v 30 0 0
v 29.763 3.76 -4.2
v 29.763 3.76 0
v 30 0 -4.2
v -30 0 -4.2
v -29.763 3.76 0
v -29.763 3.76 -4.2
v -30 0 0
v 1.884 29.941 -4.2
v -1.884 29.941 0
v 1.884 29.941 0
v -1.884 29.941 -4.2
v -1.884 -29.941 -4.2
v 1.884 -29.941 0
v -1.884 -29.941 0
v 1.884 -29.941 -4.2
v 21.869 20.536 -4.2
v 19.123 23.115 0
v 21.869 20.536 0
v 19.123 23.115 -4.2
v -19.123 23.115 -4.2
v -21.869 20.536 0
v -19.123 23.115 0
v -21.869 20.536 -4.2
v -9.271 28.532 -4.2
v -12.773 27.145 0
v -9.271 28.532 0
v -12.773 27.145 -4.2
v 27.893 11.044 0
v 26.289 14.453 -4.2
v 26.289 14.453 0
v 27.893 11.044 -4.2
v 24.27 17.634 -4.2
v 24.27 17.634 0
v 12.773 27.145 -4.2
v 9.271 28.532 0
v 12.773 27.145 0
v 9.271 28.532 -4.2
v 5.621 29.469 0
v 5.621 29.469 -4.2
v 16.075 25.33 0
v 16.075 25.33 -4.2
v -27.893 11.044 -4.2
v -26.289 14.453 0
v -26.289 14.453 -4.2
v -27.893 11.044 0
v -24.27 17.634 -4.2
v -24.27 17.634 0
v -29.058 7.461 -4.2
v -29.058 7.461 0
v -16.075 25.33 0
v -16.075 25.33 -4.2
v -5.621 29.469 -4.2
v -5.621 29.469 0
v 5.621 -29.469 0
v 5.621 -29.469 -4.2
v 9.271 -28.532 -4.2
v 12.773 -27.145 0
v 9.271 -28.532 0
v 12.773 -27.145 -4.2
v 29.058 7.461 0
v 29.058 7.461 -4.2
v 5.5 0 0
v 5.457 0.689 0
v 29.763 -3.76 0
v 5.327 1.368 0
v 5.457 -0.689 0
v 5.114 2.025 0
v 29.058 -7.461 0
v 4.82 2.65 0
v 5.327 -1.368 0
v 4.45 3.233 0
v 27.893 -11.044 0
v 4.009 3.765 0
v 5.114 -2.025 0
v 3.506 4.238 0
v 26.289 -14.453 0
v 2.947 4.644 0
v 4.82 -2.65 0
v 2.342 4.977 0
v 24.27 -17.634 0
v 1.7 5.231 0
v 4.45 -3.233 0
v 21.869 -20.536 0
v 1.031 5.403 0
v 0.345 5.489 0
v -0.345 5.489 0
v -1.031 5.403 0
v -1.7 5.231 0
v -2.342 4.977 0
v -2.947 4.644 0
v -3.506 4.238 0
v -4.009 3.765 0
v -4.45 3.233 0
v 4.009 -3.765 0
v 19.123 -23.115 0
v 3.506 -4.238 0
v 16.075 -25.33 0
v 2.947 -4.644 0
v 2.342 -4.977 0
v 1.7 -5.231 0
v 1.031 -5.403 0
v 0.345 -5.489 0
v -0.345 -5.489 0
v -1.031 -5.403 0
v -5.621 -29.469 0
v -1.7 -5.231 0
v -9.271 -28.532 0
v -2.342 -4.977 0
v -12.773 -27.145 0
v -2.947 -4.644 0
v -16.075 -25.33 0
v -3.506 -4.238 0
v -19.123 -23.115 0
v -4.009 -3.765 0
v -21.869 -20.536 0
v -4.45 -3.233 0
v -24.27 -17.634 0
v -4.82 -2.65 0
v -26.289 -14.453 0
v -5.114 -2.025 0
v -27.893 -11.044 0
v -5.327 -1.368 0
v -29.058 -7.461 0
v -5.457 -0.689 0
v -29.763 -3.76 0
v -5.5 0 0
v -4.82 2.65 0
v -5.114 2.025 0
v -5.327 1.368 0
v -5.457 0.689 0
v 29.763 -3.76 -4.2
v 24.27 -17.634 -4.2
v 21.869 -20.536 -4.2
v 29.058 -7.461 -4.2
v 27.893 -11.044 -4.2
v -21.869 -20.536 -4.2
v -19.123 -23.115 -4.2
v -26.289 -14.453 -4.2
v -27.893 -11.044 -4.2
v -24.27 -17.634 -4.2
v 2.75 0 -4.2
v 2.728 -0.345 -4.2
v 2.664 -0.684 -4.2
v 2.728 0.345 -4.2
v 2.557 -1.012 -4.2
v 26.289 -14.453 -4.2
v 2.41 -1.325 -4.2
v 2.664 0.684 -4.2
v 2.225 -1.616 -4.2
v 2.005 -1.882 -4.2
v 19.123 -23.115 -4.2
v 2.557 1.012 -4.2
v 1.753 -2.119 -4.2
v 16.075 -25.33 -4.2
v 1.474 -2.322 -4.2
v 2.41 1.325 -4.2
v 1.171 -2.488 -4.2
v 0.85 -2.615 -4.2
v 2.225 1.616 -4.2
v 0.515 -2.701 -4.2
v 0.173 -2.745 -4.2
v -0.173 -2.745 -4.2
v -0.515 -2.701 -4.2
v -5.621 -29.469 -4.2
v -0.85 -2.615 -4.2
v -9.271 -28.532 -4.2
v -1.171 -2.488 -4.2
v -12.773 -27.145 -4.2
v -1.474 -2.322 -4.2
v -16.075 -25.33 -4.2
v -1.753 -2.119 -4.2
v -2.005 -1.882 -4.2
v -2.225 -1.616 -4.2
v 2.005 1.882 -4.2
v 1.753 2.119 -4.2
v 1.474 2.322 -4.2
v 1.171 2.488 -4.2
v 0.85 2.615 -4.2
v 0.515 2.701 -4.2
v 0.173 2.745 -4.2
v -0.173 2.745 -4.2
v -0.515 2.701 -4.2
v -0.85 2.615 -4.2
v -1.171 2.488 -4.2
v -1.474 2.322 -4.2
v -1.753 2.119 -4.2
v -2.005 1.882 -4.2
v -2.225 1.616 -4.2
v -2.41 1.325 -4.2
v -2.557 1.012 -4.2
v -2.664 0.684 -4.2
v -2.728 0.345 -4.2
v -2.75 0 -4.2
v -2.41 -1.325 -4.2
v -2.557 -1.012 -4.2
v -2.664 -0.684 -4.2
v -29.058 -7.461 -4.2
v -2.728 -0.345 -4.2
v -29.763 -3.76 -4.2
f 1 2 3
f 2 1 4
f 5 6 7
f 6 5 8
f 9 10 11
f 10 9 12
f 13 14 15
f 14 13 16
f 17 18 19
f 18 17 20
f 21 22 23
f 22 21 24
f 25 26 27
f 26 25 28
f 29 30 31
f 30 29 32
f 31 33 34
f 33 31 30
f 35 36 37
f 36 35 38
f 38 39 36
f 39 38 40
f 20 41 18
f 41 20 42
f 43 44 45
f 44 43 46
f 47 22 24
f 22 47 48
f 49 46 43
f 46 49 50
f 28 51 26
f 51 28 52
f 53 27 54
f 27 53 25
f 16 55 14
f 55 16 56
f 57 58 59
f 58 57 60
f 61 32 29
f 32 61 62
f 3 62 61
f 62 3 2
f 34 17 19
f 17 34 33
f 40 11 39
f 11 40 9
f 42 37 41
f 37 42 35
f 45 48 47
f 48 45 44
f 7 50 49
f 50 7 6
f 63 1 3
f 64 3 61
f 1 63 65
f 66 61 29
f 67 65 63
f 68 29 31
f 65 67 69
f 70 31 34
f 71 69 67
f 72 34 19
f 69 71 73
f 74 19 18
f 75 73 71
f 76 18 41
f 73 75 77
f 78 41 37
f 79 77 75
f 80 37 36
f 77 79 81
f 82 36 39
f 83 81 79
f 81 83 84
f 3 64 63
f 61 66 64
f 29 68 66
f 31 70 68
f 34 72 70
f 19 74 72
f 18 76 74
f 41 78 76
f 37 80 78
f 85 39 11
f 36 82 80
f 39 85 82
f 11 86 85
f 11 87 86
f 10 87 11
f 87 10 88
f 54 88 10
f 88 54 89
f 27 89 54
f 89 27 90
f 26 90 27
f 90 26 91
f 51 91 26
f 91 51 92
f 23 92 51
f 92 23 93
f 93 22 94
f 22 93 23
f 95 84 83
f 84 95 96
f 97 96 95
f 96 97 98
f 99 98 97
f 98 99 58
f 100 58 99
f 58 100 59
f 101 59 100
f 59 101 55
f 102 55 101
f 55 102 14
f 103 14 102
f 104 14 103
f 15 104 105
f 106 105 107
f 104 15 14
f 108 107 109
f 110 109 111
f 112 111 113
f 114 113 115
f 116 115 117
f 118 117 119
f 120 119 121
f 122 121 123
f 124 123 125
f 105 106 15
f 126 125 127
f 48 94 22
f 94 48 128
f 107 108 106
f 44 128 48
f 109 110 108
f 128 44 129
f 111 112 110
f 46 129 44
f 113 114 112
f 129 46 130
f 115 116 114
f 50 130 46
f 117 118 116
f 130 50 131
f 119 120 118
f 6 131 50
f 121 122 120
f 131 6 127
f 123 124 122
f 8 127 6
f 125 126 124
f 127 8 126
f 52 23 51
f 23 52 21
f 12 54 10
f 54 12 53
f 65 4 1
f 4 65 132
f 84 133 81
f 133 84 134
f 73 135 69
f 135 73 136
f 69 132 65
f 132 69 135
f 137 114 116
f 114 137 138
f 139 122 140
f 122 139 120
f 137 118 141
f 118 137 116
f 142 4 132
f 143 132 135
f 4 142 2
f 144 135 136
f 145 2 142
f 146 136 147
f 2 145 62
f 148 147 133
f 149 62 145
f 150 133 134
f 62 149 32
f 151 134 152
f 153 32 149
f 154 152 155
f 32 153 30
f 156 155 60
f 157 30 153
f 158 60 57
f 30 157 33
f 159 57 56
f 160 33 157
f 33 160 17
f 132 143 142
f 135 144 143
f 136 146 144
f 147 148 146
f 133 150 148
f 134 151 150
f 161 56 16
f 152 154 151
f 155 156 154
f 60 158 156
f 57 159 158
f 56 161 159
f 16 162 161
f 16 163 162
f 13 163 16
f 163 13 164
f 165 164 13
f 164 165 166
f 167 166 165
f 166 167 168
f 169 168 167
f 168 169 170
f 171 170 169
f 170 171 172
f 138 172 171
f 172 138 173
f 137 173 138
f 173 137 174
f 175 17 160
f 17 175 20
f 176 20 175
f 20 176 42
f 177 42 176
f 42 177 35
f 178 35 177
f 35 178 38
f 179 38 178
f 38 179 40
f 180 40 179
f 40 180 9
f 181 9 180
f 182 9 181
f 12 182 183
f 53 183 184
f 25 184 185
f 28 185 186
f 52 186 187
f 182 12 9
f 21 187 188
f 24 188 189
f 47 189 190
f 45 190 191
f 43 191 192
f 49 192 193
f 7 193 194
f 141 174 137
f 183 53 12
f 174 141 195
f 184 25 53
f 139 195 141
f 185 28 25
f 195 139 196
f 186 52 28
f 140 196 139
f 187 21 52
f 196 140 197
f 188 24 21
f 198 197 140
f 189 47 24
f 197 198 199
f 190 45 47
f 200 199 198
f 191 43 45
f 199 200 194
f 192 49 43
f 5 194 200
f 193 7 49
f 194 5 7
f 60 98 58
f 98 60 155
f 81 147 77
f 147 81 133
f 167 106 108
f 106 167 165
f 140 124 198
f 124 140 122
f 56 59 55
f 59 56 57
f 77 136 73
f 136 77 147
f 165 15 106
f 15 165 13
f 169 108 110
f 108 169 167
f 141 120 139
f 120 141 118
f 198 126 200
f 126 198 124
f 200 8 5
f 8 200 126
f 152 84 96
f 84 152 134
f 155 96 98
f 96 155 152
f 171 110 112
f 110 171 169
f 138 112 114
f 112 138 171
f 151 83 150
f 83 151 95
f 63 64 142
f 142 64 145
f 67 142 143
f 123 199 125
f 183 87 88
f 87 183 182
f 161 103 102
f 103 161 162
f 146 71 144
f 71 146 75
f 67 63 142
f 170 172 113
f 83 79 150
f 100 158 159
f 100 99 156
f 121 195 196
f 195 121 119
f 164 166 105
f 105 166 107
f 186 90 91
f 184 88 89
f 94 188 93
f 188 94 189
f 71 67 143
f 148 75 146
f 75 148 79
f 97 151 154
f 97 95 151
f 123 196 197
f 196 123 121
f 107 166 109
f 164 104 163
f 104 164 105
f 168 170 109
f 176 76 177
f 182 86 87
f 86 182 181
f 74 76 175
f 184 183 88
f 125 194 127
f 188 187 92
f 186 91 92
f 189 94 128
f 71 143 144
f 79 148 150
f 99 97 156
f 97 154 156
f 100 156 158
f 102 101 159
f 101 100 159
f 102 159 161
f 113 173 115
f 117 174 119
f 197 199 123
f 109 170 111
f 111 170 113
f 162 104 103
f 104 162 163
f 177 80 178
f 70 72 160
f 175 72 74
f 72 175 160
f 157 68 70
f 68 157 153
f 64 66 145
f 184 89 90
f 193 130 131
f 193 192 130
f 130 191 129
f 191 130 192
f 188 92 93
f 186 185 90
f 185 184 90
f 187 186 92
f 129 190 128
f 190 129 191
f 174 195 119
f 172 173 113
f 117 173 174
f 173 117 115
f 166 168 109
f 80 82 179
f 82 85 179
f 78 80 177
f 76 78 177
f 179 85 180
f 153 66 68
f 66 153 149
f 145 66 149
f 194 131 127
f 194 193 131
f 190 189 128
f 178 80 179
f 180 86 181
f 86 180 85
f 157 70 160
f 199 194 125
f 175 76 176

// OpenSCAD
$fn = 50;


difference() {
	union() {
		translate(v = [0, 0, -4.2000000000]) {
			cylinder(h = 4.2000000000, r = 30.0000000000);
		}
		translate(v = [0, 0, -4.2000000000]) {
			cylinder(h = 4.2000000000, r = 2.8750000000);
		}
	}
	union() {
		translate(v = [0, 0, 0]) {
			rotate(a = [0, 0, 0]) {
				difference() {
					union() {
						translate(v = [0, 0, -4.2000000000]) {
							cylinder(h = 4.2000000000, r = 2.2500000000);
						}
						translate(v = [0, 0, -4.2000000000]) {
							cylinder(h = 4.2000000000, r1 = 2.7500000000, r2 = 5.5000000000);
						}
						translate(v = [0, 0, -4.2000000000]) {
							cylinder(h = 4.2000000000, r = 2.7500000000);
						}
						translate(v = [0, 0, -4.2000000000]) {
							cylinder(h = 4.2000000000, r = 2.2500000000);
						}
					}
					union();
				}
			}
		}
	}
}
